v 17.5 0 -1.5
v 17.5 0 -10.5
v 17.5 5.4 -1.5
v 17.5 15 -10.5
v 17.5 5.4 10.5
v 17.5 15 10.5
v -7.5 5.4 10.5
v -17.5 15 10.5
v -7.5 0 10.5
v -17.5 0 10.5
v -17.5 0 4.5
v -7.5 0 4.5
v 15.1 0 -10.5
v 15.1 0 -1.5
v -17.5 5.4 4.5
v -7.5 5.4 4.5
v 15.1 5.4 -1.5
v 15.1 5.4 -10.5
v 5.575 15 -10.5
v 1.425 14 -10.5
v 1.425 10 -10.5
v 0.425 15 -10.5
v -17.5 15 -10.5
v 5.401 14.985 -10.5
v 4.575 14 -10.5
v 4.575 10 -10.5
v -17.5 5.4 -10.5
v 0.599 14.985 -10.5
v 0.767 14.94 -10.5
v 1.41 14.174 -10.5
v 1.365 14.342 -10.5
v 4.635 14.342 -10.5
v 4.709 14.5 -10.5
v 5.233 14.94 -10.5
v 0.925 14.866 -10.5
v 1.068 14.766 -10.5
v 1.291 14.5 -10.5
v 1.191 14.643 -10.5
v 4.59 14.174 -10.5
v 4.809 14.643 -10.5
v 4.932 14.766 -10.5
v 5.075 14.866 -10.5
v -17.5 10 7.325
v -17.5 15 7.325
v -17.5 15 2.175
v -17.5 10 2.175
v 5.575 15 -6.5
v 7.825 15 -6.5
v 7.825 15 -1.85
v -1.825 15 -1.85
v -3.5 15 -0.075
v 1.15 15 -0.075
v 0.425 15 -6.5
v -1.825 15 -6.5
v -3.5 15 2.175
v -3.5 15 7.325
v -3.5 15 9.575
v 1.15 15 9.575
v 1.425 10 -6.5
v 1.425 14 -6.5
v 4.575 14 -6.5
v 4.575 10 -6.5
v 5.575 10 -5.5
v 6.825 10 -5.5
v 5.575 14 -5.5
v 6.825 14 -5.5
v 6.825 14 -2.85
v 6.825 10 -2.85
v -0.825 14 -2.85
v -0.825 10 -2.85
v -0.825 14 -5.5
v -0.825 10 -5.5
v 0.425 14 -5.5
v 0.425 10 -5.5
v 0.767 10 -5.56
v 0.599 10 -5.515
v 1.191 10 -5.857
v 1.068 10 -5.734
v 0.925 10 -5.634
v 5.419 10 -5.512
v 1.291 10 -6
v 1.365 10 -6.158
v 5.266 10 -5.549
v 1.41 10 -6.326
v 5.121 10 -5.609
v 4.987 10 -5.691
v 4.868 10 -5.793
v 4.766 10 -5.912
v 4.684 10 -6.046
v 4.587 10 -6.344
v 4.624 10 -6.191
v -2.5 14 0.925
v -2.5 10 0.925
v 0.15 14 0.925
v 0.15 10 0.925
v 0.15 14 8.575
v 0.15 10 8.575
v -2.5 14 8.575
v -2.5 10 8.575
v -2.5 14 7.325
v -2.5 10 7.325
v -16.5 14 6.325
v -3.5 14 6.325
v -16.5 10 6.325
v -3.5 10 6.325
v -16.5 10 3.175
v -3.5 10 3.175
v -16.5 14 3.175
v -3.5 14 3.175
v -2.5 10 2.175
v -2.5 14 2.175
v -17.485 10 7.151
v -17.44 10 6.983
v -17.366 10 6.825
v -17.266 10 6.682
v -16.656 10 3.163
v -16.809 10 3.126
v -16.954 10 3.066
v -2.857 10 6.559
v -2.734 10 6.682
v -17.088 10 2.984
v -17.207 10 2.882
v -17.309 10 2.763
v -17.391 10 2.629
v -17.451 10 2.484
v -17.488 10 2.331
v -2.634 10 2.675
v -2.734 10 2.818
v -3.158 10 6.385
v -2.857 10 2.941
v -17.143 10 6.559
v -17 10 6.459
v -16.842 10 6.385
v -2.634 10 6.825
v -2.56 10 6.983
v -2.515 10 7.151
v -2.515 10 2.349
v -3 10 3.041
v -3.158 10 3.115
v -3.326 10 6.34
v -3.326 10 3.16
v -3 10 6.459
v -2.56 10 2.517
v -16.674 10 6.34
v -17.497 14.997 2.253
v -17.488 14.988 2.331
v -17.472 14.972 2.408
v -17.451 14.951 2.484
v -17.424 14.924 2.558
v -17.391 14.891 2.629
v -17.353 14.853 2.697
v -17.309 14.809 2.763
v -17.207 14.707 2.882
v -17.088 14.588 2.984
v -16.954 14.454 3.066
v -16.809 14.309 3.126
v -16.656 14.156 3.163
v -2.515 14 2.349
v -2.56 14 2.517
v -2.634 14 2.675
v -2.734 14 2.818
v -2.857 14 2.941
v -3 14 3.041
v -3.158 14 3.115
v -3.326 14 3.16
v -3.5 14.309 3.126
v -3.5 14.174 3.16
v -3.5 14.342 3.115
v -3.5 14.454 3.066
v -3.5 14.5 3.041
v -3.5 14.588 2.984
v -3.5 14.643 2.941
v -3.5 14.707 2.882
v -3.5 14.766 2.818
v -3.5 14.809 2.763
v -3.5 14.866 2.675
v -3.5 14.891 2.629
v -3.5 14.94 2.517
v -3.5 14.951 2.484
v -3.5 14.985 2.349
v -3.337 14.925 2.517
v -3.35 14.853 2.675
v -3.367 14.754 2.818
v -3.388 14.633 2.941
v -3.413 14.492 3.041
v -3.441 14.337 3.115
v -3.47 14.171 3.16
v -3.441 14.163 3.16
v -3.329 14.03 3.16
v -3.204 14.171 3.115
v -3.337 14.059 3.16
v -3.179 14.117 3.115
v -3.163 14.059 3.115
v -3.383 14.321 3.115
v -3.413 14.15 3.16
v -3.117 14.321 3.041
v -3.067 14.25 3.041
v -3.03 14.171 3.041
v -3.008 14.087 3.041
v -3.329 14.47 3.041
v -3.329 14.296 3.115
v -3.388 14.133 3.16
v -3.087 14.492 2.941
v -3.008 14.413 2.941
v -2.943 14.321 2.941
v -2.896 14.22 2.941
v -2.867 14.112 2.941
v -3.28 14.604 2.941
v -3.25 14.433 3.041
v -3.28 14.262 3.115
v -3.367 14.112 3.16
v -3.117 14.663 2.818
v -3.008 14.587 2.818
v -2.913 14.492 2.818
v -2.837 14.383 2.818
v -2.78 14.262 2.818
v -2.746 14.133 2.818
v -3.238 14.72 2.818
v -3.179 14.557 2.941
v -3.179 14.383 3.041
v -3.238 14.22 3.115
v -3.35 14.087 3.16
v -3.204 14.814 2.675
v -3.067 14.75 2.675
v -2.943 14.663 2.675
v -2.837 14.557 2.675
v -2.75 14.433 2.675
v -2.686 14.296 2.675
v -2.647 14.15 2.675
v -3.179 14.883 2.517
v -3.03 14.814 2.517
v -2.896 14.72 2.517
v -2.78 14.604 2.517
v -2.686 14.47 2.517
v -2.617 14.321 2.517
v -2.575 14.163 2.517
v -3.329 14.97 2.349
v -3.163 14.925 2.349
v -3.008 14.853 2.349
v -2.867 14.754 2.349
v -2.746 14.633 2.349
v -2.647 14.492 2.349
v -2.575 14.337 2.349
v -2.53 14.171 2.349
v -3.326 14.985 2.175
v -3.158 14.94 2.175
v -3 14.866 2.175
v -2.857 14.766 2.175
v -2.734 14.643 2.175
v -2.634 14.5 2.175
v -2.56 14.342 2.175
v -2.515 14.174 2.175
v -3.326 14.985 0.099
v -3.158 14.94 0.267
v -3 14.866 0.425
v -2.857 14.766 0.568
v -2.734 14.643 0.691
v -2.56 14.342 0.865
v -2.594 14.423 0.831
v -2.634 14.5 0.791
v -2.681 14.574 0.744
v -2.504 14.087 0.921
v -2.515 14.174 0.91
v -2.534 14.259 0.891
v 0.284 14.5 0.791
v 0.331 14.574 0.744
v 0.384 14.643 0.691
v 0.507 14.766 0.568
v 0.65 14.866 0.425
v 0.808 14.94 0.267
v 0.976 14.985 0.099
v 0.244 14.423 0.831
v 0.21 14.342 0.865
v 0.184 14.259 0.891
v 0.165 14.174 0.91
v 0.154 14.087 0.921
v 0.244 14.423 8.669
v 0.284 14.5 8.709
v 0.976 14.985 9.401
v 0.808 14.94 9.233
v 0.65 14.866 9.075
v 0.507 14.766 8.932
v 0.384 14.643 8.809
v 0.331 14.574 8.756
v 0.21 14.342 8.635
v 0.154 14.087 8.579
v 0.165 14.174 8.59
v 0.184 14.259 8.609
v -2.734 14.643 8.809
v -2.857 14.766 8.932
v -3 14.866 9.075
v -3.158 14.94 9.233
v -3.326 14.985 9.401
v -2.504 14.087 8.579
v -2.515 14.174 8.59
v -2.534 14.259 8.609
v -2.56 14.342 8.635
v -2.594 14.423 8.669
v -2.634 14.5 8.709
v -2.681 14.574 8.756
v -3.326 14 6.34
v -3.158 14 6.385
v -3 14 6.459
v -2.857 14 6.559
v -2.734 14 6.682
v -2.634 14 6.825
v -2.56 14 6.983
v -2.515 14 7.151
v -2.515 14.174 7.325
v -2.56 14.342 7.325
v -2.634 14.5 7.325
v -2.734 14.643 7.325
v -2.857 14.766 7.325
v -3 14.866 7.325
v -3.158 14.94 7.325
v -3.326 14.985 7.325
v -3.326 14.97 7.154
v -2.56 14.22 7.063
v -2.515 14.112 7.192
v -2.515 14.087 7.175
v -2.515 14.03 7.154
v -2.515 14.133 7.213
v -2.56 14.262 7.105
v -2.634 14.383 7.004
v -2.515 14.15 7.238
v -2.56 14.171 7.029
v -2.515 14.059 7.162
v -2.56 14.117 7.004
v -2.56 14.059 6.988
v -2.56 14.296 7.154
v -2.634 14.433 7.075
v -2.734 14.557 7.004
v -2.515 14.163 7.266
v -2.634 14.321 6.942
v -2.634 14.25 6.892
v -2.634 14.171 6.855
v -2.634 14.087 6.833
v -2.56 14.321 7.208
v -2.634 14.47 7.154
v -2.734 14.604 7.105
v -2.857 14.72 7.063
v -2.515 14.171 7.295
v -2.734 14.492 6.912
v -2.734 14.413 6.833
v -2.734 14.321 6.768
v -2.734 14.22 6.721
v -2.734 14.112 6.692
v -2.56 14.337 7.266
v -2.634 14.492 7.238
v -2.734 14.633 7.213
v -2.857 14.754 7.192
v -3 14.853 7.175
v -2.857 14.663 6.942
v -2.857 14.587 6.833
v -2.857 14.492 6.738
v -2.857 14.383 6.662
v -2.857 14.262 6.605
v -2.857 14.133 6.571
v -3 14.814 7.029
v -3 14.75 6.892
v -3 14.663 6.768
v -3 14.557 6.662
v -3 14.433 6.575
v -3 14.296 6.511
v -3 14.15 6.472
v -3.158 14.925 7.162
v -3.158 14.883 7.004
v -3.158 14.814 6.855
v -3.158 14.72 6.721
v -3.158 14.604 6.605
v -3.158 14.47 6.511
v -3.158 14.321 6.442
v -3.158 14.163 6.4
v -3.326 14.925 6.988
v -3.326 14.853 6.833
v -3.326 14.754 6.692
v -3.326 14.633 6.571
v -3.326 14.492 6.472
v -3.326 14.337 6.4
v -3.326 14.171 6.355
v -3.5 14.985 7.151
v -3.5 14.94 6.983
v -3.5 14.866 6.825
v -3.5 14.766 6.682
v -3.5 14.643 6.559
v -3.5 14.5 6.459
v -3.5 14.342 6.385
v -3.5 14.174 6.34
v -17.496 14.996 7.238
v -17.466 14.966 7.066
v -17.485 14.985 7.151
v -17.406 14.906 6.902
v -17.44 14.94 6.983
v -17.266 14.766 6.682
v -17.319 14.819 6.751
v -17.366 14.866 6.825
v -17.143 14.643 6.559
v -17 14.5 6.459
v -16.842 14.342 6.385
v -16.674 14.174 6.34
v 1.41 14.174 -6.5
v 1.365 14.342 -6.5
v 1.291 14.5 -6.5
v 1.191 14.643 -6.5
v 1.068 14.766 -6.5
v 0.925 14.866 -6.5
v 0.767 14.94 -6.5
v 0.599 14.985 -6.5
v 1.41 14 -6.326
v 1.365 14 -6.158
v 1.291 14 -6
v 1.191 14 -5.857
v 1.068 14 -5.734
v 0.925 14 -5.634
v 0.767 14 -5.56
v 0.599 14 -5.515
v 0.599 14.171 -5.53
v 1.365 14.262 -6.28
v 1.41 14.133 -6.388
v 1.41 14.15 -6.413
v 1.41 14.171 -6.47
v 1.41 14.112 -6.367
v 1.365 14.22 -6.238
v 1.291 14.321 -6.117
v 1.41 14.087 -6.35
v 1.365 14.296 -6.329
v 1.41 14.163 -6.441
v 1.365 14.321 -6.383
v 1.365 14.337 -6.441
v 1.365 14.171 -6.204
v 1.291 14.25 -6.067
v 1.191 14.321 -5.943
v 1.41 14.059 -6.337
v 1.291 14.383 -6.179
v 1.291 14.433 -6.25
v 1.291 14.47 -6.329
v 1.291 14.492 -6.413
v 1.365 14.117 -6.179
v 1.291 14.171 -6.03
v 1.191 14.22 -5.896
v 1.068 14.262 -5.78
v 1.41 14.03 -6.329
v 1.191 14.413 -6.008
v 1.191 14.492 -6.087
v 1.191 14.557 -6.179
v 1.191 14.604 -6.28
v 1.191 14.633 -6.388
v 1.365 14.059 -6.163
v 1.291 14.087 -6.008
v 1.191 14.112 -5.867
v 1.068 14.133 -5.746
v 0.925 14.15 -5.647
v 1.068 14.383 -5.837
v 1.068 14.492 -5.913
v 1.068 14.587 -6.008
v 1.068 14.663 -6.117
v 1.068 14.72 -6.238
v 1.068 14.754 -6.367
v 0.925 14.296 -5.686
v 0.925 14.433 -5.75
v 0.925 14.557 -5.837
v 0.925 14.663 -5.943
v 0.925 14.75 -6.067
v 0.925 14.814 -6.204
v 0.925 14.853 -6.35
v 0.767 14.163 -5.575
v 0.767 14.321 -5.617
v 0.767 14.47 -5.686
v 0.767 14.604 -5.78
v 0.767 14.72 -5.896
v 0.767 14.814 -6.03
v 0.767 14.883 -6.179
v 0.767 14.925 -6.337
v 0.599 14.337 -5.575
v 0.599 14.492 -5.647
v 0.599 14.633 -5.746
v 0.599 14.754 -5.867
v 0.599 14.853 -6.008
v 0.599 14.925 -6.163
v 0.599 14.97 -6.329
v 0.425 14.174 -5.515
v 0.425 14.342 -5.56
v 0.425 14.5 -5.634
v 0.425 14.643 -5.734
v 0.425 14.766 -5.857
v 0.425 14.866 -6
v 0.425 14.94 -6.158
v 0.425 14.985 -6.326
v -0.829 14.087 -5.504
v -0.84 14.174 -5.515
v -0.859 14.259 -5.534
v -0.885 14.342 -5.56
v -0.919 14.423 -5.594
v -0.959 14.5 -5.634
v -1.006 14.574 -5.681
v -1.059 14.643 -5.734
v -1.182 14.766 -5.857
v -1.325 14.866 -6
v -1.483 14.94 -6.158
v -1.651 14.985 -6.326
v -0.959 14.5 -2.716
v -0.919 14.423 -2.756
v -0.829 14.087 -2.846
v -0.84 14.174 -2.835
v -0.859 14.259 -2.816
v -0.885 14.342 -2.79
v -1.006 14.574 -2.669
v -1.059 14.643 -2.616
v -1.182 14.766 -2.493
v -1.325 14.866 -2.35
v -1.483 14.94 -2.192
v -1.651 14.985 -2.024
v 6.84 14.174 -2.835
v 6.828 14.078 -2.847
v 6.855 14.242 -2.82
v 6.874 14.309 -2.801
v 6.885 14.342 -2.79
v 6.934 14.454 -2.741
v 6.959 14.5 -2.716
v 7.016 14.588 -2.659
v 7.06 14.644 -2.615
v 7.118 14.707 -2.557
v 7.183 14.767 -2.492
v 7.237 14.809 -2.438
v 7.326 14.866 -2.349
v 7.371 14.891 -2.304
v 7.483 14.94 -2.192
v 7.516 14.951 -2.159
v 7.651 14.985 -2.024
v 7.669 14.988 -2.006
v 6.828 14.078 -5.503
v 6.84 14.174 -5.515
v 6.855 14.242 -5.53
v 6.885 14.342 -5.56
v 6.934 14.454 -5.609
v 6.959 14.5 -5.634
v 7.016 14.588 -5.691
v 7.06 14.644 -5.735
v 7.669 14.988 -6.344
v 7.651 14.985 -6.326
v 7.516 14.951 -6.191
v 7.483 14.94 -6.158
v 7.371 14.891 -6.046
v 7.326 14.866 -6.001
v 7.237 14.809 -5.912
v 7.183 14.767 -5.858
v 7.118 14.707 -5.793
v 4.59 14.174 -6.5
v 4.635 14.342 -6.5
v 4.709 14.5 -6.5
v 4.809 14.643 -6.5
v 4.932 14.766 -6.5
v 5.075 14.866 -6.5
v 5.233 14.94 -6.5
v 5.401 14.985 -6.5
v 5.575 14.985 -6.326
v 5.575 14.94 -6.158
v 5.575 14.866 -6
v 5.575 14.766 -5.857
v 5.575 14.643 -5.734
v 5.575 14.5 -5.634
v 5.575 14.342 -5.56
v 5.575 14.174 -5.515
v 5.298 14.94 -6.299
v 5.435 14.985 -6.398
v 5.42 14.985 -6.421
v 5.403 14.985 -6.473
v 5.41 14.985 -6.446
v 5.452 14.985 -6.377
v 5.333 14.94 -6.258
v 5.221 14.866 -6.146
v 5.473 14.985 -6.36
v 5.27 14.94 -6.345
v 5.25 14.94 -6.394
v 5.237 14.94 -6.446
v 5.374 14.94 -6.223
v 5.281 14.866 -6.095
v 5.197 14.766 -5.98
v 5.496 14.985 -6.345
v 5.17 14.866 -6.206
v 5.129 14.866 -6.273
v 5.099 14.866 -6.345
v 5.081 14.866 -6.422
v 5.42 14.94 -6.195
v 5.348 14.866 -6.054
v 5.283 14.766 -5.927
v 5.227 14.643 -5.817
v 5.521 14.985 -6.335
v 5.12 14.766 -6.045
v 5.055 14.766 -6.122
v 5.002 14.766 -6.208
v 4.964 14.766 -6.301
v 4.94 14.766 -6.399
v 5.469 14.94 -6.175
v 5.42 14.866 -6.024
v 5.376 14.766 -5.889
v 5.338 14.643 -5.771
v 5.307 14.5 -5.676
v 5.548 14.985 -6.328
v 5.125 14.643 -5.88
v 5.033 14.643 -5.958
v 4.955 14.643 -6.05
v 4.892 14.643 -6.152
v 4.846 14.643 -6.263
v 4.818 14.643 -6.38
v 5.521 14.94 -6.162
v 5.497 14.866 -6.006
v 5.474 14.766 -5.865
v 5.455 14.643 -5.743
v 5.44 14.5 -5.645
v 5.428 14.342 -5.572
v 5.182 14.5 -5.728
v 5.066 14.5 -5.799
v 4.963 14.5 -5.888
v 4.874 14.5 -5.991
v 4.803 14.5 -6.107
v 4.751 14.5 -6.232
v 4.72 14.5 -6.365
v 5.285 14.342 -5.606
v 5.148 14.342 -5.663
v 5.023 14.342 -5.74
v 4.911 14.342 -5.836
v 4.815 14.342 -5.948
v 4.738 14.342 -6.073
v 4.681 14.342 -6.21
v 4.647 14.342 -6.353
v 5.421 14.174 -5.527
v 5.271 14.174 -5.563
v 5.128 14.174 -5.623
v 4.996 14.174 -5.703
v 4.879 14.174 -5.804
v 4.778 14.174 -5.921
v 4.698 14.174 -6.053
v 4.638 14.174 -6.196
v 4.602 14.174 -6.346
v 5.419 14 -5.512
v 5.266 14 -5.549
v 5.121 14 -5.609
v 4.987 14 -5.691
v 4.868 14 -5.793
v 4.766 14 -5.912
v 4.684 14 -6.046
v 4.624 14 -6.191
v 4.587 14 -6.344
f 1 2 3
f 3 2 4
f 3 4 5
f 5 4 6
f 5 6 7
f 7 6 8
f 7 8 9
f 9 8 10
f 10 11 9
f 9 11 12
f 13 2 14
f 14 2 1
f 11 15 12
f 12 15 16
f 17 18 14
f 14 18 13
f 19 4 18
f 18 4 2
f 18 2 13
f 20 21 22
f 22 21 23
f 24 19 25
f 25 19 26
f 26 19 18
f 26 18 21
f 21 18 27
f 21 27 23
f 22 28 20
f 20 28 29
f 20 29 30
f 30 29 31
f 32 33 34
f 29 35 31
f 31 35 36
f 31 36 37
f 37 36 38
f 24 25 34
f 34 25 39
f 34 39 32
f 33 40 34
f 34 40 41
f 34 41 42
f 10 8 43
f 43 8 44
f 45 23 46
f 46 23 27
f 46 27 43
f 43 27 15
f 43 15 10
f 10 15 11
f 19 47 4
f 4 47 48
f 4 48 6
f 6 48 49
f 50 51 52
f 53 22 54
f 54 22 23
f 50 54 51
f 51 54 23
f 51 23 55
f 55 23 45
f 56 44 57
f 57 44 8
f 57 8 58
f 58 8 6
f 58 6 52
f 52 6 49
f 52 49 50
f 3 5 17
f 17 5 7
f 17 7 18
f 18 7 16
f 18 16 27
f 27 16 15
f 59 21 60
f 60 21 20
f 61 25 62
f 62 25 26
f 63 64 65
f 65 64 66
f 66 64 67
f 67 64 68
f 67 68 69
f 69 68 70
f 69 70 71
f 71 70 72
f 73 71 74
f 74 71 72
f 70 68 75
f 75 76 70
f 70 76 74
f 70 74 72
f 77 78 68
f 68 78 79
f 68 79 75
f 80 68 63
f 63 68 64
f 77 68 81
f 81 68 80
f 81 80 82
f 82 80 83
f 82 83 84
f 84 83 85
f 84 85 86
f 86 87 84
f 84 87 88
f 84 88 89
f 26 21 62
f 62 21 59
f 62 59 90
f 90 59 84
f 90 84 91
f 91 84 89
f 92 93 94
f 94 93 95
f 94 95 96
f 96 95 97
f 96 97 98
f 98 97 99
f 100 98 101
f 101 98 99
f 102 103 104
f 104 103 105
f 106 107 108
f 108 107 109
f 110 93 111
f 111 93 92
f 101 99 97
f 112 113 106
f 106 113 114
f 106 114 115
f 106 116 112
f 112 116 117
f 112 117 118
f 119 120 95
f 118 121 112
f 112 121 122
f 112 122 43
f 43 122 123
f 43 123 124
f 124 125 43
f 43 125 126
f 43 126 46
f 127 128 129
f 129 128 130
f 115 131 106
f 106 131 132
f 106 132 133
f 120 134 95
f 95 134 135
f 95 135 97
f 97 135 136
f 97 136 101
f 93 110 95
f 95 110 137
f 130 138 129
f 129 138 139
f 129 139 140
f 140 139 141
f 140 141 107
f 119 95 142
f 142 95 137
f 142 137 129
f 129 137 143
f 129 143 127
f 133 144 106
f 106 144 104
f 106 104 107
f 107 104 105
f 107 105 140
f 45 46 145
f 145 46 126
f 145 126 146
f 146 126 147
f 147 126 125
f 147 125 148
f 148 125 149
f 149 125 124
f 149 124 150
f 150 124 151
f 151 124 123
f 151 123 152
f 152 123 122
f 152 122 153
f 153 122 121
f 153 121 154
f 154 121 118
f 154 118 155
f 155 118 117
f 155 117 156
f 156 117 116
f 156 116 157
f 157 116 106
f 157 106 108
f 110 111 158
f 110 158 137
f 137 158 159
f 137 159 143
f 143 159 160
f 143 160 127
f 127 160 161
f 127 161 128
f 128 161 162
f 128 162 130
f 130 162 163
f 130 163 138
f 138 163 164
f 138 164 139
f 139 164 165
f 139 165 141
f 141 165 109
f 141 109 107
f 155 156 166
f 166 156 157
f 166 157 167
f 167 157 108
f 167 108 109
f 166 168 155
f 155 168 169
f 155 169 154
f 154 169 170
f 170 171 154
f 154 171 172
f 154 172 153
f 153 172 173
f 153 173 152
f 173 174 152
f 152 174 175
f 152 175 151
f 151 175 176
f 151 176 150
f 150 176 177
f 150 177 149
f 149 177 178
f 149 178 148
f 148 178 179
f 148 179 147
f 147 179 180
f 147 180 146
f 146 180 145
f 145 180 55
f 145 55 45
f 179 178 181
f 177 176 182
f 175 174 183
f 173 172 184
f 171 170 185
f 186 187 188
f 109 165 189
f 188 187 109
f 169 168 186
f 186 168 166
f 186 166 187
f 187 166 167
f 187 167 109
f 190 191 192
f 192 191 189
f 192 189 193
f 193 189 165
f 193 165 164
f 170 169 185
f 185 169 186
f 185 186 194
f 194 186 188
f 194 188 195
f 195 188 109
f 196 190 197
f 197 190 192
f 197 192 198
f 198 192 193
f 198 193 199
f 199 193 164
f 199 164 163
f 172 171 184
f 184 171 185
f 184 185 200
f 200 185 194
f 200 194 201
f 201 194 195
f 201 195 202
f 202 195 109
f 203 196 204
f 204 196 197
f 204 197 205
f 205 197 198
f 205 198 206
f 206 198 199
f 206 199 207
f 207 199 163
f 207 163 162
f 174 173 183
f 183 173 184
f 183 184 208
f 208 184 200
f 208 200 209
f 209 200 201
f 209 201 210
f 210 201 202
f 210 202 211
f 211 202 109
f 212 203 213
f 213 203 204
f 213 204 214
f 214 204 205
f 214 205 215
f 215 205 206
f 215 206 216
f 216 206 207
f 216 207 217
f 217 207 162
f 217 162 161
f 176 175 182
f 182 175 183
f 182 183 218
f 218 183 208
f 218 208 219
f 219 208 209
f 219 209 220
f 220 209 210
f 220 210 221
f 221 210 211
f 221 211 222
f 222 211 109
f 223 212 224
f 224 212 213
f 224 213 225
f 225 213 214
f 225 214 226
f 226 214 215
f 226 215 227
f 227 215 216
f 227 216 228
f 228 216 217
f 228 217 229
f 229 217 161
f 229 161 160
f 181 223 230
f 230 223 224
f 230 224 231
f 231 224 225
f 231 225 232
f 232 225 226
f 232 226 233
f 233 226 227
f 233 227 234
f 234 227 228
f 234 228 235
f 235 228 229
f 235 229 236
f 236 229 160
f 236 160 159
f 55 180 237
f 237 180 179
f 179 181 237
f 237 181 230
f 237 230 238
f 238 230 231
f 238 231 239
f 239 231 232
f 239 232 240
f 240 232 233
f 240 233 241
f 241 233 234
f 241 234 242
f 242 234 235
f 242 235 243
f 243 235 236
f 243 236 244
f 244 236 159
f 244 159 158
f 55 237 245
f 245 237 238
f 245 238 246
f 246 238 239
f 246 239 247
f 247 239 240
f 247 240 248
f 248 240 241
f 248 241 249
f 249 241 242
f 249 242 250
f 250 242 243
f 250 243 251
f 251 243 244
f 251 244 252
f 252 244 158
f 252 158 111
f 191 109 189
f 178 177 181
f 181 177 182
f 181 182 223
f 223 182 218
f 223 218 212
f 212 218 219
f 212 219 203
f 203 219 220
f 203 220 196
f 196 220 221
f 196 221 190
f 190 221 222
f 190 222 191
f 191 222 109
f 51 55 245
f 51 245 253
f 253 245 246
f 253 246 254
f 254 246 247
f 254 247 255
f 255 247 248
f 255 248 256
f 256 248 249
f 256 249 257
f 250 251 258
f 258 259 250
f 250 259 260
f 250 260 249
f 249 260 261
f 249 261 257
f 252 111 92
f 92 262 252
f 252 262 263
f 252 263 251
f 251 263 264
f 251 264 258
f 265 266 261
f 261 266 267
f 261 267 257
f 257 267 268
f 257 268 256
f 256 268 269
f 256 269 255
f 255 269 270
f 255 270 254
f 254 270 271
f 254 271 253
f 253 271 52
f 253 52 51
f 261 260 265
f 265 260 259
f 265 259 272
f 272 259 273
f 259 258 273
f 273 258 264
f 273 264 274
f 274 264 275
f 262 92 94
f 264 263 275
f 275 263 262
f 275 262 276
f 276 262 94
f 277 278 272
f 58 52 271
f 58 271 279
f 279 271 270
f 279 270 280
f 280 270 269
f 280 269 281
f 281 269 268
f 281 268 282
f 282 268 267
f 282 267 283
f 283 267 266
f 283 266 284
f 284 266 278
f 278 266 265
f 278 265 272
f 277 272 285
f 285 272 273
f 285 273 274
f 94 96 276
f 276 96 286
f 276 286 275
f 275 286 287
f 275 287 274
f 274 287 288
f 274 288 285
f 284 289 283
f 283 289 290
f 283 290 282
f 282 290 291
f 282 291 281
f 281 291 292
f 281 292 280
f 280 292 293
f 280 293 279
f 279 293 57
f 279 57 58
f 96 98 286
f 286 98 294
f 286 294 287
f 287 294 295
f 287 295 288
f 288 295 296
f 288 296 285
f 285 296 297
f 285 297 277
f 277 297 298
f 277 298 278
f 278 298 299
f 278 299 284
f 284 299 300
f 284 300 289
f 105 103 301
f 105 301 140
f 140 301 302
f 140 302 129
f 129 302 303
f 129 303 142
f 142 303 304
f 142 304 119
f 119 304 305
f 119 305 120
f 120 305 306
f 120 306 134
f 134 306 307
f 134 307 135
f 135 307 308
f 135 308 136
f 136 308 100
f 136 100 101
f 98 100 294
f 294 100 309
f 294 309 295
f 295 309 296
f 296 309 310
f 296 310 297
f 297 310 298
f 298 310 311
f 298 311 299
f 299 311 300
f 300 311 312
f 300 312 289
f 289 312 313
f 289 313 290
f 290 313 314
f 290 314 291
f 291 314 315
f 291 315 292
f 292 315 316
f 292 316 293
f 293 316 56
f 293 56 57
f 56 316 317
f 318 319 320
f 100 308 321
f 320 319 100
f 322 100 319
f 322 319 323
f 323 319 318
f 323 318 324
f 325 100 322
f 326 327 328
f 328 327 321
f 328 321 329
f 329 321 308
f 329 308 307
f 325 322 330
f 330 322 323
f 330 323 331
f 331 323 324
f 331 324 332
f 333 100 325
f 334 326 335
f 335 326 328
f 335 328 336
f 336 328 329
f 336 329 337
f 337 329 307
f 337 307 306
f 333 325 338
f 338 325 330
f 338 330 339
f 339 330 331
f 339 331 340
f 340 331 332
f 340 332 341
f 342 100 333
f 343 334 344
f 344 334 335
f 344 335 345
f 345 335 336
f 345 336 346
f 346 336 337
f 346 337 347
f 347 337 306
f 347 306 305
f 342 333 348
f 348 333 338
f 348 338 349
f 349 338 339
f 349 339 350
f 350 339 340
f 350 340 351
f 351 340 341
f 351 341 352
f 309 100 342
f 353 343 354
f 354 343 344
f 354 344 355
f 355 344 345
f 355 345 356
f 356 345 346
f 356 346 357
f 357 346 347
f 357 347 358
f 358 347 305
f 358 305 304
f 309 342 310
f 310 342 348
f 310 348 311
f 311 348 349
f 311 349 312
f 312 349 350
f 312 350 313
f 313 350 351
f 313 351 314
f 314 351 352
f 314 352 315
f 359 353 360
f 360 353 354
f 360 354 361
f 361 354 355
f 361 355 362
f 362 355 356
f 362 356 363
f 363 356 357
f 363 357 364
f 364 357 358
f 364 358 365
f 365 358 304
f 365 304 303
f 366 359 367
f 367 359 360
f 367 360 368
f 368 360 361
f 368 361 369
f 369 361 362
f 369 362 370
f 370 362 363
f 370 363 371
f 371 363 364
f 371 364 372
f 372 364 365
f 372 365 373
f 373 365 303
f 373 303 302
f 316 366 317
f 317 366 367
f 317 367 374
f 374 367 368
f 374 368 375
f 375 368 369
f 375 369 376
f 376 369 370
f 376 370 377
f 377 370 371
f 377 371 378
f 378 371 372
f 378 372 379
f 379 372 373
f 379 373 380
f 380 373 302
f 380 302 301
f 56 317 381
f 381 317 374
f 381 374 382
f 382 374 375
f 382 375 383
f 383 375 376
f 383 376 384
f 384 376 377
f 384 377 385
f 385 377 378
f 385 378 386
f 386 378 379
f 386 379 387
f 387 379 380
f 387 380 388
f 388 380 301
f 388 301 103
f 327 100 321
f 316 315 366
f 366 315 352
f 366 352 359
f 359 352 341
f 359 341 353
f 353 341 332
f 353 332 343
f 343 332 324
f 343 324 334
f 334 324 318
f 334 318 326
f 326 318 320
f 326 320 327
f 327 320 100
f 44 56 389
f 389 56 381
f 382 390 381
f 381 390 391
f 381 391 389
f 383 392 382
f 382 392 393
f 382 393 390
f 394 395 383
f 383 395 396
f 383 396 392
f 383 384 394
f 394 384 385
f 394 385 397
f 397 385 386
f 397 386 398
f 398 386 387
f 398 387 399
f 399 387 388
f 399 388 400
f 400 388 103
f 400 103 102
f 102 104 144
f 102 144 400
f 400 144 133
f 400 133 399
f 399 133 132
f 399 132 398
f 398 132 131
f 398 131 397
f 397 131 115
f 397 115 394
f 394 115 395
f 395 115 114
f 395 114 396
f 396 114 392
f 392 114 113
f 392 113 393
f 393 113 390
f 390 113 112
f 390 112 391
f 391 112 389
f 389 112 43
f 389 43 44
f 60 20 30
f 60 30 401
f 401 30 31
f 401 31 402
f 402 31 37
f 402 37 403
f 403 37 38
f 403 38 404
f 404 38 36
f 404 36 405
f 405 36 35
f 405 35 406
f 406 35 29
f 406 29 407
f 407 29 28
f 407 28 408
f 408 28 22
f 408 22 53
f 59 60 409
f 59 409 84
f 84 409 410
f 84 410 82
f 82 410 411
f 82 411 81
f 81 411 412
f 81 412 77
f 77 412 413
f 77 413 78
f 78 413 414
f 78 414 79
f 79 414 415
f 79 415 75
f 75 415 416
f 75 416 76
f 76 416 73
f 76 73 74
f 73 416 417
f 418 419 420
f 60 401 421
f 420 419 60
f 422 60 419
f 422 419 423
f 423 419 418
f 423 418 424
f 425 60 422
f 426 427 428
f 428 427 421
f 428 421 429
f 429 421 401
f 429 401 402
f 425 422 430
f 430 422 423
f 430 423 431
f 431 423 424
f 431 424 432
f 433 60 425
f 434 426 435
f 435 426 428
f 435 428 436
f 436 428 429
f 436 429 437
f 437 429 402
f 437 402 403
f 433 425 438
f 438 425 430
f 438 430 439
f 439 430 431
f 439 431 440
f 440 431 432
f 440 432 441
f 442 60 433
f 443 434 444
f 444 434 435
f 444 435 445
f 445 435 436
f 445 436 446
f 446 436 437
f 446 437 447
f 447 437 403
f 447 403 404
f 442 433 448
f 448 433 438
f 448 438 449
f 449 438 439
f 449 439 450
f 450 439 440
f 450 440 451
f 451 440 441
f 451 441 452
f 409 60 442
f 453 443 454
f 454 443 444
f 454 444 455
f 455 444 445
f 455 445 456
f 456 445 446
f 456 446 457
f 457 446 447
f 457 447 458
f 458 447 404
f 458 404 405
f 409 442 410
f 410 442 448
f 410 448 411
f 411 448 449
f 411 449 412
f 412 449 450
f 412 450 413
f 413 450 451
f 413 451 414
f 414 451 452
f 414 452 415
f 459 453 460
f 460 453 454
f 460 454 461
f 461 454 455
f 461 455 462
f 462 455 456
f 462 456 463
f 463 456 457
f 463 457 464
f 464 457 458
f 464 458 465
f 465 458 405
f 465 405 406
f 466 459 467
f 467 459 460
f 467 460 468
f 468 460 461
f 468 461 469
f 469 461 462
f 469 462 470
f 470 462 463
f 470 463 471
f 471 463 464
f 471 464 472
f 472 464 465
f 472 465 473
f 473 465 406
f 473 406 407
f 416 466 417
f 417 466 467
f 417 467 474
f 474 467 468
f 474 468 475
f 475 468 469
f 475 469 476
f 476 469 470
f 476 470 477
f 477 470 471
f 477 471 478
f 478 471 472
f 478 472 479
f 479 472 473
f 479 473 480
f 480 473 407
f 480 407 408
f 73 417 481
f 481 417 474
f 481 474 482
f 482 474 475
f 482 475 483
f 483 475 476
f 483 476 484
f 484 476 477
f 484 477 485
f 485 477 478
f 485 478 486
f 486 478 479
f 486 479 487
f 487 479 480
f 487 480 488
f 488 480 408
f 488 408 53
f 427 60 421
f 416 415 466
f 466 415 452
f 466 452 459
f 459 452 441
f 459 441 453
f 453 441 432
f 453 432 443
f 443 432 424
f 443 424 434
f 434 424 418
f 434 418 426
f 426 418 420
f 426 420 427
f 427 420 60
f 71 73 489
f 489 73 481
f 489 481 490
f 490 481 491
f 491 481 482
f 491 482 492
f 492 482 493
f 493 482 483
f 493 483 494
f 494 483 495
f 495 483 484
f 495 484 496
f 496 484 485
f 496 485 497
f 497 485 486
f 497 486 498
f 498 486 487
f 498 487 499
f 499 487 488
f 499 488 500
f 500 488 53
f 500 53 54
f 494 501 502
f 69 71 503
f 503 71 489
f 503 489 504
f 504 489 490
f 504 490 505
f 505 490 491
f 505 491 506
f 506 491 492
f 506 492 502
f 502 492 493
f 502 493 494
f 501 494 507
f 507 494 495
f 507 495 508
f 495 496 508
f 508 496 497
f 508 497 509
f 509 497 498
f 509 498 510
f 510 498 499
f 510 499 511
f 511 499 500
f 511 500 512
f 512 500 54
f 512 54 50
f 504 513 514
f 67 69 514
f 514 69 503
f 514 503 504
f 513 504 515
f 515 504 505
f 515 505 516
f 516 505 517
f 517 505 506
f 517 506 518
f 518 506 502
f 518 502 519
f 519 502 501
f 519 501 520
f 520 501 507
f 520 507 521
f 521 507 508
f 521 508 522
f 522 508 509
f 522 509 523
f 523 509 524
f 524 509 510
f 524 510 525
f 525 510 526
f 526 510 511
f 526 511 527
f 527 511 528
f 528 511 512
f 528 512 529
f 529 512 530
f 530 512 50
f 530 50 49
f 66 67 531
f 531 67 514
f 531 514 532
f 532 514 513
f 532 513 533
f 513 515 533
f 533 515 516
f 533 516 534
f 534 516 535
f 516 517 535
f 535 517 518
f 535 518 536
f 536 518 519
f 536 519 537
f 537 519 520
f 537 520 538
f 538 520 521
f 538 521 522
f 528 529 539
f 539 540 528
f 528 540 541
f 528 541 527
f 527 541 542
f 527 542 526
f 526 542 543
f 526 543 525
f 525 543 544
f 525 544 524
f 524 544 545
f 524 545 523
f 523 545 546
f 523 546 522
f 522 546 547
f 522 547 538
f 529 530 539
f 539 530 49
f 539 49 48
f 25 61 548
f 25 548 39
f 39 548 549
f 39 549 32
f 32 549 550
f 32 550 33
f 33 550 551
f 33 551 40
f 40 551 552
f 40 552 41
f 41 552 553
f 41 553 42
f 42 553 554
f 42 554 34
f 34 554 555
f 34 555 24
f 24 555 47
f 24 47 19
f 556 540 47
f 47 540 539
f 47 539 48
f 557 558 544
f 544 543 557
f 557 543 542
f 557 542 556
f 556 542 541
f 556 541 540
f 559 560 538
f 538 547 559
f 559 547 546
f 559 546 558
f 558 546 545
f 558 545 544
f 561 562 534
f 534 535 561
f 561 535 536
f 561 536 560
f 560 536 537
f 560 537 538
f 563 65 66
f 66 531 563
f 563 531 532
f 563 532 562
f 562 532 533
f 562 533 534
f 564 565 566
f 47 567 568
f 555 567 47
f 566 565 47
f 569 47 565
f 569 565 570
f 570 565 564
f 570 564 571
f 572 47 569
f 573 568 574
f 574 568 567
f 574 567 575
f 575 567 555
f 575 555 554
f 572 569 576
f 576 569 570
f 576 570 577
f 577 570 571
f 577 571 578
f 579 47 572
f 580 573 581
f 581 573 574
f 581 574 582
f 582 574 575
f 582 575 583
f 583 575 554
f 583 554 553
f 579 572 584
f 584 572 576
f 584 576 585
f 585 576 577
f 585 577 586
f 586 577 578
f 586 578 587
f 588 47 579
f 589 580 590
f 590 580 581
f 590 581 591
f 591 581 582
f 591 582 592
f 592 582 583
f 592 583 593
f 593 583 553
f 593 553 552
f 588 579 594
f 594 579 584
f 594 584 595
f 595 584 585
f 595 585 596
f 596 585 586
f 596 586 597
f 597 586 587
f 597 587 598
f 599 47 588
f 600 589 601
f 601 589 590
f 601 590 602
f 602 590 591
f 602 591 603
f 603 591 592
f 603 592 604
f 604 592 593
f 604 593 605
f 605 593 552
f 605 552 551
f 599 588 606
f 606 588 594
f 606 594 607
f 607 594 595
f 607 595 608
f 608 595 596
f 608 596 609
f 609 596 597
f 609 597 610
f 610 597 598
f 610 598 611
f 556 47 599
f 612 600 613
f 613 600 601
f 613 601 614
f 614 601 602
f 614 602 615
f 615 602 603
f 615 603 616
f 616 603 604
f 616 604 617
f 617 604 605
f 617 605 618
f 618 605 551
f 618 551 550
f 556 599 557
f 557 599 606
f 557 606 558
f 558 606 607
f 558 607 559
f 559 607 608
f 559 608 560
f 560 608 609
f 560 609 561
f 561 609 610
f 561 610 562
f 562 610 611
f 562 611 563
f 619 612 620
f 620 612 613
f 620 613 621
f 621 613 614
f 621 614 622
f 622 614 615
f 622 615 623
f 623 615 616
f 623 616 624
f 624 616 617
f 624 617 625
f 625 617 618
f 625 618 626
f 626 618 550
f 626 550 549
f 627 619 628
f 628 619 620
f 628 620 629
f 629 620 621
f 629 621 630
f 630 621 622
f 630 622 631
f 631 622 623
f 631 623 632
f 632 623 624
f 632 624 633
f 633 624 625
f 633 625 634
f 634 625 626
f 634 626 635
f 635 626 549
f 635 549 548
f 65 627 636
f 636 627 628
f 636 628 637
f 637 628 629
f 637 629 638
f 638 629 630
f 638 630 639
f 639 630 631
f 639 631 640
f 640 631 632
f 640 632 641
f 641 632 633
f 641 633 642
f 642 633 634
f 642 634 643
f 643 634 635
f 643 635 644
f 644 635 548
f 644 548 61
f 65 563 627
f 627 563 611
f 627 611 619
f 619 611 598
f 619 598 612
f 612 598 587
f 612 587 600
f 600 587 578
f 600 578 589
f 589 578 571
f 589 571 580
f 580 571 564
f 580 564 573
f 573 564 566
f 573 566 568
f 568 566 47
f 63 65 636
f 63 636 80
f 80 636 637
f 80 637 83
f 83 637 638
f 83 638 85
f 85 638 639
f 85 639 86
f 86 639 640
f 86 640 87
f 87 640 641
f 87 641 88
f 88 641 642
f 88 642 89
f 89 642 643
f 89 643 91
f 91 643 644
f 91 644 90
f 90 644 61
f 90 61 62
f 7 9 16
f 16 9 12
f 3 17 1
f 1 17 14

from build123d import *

# Parameters (mm, degrees)
SKETCH1_W               = 35
SKETCH1_H               = 21
BOSS_EXTRUDE1_DEPTH     = 15
SKETCH2_W               = 15
SKETCH2_H               = 5.4
CUT_EXTRUDE1_DEPTH      = 32.6
CUT_EXTRUDE2_DEPTH      = 5
FILLET1_R               = 1
CUT_EXTRUDE3_DEPTH      = 6
CUT_EXTRUDE3_DEPTH_BACK = 28.5
SKETCH4_W               = 25
SKETCH4_H               = 5.4


with BuildPart() as part:
    # Sketch1 → Boss-Extrude1 (new body)
    with BuildSketch(Plane(origin=(0, 0, 0), x_dir=(1, 0, 0), z_dir=(0, 1, 0))):
        Rectangle(SKETCH1_W, SKETCH1_H)
    extrude(amount=BOSS_EXTRUDE1_DEPTH)

    # Sketch2 → Cut-Extrude1 (cut)
    with BuildSketch(Plane.ZY.offset(17.5)):
        with Locations((-3, 2.7)):
            Rectangle(SKETCH2_W, SKETCH2_H)
    extrude(amount=-CUT_EXTRUDE1_DEPTH, mode=Mode.SUBTRACT)

    # Sketch3 → Cut-Extrude2 (cut)
    with BuildSketch(Plane(origin=(0, 15, 0), x_dir=(1, 0, 0), z_dir=(0, 1, 0))):
        Polygon((0.15, -0.925), (0.15, -8.575), (-2.5, -8.575), (-2.5, -6.325), (-17.5, -6.325), (-17.5, -3.175), (-2.5, -3.175), (-2.5, -0.925), align=None)
        Polygon((1.425, 10.5), (4.575, 10.5), (4.575, 5.5), (6.825, 5.5), (6.825, 2.85), (-0.825, 2.85), (-0.825, 5.5), (1.425, 5.5), align=None)
    extrude(amount=-CUT_EXTRUDE2_DEPTH, mode=Mode.SUBTRACT)

    # Fillet1
    fillet1_edges = [part.edges().sort_by_distance(p)[0] for p in [
        (-2.5, 12.5, 6.325),
        (-17.5, 12.5, 6.325),
        (-17.5, 12.5, 3.175),
        (-2.5, 12.5, 3.175),
        (-1.175, 15, 0.925),
        (-2.5, 15, 2.05),
        (-10, 15, 3.175),
        (-10, 15, 6.325),
        (-2.5, 15, 7.45),
        (-1.175, 15, 8.575),
        (0.15, 15, 4.75),
        (1.425, 12.5, -5.5),
        (4.575, 12.5, -5.5),
        (1.425, 15, -8),
        (0.3, 15, -5.5),
        (-0.825, 15, -4.175),
        (3, 15, -2.85),
        (6.825, 15, -4.175),
        (5.7, 15, -5.5),
        (4.575, 15, -8),
    ]]
    fillet(fillet1_edges, radius=FILLET1_R)

    # Sketch4 → Cut-Extrude3 (cut, two sides: drawn at the far end of the back side and taken through both)
    with BuildSketch(Plane(origin=(0, 0, 4.5), x_dir=(-1, 0, 0), z_dir=(0, 0, -1)).offset(-CUT_EXTRUDE3_DEPTH_BACK)):
        with Locations((-5, 2.7)):
            Rectangle(SKETCH4_W, SKETCH4_H)
    extrude(amount=CUT_EXTRUDE3_DEPTH + CUT_EXTRUDE3_DEPTH_BACK, mode=Mode.SUBTRACT)


solid = part.part
